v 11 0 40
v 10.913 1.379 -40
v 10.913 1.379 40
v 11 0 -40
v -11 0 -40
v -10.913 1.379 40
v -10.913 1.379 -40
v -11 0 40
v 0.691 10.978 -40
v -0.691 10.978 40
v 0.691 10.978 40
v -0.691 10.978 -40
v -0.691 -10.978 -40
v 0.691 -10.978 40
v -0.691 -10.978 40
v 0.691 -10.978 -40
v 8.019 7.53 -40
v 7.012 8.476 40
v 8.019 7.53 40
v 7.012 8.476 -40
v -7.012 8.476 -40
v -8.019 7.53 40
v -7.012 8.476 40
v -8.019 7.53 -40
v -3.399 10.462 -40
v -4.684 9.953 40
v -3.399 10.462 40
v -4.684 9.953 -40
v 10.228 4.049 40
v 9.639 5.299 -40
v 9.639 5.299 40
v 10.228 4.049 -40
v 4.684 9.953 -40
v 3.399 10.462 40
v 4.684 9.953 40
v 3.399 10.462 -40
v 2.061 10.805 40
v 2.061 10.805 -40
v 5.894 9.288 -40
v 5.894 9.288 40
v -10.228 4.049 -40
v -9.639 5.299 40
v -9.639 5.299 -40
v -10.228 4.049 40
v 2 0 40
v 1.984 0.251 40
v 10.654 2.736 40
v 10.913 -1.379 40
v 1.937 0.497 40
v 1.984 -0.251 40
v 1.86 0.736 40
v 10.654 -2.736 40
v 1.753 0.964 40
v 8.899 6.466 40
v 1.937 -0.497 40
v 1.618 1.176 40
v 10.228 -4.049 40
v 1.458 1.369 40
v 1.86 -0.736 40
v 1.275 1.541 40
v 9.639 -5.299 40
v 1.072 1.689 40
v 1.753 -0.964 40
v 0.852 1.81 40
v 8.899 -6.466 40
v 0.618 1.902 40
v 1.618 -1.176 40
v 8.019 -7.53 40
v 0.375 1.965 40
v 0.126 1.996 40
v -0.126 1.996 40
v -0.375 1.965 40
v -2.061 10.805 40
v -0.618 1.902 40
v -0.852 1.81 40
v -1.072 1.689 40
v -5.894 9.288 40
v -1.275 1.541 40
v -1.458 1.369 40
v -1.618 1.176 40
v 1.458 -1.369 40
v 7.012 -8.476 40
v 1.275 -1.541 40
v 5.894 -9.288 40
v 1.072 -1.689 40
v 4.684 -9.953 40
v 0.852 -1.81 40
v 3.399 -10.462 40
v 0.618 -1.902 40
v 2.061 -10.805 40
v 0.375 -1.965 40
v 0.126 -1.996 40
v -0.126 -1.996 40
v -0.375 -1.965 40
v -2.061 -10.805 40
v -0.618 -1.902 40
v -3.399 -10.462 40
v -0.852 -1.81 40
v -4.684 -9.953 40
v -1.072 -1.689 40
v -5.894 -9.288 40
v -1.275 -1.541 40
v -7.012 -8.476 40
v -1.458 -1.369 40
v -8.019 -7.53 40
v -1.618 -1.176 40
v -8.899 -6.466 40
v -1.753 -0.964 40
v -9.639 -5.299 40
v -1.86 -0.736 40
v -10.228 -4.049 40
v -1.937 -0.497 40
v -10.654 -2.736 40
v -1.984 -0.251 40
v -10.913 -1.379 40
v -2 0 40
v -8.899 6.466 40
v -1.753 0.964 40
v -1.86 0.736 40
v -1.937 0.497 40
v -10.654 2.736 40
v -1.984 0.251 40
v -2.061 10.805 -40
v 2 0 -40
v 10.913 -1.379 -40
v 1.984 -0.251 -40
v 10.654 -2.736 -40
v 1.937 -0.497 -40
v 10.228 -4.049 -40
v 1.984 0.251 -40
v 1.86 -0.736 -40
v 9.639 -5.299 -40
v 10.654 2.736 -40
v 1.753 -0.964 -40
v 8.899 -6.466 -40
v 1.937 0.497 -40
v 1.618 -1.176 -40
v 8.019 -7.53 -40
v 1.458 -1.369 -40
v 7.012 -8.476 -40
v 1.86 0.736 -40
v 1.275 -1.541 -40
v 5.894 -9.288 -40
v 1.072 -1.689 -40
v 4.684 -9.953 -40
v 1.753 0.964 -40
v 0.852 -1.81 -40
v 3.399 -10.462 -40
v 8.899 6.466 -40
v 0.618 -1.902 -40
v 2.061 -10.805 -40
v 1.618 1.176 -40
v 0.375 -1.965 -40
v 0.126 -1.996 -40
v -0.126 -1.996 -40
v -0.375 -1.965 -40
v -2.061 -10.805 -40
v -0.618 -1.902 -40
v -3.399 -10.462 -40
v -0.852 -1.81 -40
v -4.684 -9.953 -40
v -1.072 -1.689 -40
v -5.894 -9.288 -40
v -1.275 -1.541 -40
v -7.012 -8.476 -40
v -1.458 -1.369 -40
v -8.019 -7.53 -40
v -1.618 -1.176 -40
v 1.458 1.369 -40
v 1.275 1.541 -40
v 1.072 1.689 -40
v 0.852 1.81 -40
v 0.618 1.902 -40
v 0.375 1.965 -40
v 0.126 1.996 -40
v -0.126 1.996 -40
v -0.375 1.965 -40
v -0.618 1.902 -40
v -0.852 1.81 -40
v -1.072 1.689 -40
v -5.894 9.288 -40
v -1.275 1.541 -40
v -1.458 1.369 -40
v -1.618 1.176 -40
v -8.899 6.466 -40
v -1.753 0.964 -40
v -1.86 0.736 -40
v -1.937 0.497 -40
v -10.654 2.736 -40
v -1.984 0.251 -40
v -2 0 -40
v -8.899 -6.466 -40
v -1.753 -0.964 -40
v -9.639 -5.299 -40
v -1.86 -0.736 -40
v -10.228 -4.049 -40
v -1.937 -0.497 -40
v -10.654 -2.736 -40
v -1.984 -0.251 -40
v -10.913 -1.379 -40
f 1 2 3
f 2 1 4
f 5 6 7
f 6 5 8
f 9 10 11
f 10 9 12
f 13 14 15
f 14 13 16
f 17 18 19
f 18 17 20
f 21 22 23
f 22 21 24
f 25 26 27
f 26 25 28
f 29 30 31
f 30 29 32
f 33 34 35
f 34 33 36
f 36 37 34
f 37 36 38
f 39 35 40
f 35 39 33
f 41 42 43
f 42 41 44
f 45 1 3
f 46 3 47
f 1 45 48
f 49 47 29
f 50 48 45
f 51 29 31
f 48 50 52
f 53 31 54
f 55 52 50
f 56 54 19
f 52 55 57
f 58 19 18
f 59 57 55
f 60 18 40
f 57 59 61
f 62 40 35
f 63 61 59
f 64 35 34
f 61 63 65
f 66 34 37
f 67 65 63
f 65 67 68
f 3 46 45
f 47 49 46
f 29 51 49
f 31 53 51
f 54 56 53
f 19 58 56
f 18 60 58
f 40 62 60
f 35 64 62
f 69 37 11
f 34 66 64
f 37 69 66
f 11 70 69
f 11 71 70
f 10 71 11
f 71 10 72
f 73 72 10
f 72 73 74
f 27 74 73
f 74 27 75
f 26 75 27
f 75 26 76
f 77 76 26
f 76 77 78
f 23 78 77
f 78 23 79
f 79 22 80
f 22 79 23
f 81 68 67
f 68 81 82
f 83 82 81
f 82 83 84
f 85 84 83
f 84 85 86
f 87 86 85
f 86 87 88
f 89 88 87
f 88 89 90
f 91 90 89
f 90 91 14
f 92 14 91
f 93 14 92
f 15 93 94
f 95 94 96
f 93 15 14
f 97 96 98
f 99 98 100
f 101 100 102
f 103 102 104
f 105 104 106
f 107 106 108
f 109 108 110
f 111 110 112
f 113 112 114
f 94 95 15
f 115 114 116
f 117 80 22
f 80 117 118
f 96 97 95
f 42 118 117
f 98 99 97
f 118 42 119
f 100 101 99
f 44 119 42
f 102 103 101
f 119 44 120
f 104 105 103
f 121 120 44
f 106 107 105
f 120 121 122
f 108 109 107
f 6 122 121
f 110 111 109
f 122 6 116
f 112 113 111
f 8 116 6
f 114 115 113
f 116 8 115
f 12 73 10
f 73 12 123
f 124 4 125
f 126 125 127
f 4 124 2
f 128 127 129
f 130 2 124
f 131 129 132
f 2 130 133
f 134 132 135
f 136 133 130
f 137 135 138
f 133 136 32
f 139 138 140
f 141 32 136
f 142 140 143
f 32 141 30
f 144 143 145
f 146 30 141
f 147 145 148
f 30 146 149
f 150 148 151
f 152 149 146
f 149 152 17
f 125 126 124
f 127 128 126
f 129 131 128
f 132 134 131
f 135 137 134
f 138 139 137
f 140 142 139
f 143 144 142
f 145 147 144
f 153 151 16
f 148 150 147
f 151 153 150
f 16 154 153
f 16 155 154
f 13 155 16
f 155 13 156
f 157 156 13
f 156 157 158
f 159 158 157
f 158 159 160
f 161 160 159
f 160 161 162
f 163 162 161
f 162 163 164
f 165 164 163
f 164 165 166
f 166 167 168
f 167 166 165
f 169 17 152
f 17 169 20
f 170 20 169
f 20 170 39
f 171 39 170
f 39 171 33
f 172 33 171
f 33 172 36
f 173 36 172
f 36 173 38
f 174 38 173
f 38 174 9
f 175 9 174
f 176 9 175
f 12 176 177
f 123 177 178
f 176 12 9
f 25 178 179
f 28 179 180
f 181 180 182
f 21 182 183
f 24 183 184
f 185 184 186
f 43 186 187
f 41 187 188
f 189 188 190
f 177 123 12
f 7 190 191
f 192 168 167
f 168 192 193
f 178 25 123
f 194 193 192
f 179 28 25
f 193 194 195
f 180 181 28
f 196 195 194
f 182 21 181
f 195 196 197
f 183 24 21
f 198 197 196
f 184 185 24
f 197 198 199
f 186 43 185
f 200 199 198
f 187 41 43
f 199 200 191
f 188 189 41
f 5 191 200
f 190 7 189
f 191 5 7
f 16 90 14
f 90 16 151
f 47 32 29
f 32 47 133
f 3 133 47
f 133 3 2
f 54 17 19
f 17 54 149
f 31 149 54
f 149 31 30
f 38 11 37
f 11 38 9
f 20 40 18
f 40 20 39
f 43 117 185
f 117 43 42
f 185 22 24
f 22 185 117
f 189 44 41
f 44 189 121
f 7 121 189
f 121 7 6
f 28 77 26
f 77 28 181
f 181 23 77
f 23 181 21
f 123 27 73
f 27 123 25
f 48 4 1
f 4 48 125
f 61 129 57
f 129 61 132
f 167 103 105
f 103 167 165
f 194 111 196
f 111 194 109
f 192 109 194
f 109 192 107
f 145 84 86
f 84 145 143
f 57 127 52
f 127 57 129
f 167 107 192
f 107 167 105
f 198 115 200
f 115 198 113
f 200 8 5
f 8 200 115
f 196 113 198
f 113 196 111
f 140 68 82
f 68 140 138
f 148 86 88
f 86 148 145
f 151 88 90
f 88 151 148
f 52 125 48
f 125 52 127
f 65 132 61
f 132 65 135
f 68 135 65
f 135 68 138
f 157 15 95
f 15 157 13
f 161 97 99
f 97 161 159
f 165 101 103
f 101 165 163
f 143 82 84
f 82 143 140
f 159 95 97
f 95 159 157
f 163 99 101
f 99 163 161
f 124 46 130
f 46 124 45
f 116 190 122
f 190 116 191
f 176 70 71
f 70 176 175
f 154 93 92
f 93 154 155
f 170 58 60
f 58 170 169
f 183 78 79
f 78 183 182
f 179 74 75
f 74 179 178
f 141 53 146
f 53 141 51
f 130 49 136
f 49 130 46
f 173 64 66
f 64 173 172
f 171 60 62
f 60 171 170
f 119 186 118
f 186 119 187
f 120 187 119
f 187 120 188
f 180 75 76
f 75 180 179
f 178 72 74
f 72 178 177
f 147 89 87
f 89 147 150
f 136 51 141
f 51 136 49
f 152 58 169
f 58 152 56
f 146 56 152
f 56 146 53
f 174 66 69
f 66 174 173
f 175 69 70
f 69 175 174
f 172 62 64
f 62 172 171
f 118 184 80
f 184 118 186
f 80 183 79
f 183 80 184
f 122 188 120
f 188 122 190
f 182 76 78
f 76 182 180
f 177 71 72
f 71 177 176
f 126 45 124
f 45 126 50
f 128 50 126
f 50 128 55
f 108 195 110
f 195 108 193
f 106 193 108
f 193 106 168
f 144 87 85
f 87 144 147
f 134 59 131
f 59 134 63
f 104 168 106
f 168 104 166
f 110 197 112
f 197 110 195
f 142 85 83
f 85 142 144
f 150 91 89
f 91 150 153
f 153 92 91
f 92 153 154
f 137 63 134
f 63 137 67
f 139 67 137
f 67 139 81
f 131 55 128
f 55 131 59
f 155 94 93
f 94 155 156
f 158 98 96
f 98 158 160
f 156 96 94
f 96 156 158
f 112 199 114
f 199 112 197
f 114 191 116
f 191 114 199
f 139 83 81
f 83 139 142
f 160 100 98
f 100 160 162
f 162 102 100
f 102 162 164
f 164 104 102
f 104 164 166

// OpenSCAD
$fn = 50;


difference() {
	union() {
		translate(v = [0, 0, -40.0000000000]) {
			cylinder(h = 80, r = 11.0000000000);
		}
	}
	union() {
		translate(v = [0, 0, -100.0000000000]) {
			cylinder(h = 200, r = 2);
		}
	}
}
